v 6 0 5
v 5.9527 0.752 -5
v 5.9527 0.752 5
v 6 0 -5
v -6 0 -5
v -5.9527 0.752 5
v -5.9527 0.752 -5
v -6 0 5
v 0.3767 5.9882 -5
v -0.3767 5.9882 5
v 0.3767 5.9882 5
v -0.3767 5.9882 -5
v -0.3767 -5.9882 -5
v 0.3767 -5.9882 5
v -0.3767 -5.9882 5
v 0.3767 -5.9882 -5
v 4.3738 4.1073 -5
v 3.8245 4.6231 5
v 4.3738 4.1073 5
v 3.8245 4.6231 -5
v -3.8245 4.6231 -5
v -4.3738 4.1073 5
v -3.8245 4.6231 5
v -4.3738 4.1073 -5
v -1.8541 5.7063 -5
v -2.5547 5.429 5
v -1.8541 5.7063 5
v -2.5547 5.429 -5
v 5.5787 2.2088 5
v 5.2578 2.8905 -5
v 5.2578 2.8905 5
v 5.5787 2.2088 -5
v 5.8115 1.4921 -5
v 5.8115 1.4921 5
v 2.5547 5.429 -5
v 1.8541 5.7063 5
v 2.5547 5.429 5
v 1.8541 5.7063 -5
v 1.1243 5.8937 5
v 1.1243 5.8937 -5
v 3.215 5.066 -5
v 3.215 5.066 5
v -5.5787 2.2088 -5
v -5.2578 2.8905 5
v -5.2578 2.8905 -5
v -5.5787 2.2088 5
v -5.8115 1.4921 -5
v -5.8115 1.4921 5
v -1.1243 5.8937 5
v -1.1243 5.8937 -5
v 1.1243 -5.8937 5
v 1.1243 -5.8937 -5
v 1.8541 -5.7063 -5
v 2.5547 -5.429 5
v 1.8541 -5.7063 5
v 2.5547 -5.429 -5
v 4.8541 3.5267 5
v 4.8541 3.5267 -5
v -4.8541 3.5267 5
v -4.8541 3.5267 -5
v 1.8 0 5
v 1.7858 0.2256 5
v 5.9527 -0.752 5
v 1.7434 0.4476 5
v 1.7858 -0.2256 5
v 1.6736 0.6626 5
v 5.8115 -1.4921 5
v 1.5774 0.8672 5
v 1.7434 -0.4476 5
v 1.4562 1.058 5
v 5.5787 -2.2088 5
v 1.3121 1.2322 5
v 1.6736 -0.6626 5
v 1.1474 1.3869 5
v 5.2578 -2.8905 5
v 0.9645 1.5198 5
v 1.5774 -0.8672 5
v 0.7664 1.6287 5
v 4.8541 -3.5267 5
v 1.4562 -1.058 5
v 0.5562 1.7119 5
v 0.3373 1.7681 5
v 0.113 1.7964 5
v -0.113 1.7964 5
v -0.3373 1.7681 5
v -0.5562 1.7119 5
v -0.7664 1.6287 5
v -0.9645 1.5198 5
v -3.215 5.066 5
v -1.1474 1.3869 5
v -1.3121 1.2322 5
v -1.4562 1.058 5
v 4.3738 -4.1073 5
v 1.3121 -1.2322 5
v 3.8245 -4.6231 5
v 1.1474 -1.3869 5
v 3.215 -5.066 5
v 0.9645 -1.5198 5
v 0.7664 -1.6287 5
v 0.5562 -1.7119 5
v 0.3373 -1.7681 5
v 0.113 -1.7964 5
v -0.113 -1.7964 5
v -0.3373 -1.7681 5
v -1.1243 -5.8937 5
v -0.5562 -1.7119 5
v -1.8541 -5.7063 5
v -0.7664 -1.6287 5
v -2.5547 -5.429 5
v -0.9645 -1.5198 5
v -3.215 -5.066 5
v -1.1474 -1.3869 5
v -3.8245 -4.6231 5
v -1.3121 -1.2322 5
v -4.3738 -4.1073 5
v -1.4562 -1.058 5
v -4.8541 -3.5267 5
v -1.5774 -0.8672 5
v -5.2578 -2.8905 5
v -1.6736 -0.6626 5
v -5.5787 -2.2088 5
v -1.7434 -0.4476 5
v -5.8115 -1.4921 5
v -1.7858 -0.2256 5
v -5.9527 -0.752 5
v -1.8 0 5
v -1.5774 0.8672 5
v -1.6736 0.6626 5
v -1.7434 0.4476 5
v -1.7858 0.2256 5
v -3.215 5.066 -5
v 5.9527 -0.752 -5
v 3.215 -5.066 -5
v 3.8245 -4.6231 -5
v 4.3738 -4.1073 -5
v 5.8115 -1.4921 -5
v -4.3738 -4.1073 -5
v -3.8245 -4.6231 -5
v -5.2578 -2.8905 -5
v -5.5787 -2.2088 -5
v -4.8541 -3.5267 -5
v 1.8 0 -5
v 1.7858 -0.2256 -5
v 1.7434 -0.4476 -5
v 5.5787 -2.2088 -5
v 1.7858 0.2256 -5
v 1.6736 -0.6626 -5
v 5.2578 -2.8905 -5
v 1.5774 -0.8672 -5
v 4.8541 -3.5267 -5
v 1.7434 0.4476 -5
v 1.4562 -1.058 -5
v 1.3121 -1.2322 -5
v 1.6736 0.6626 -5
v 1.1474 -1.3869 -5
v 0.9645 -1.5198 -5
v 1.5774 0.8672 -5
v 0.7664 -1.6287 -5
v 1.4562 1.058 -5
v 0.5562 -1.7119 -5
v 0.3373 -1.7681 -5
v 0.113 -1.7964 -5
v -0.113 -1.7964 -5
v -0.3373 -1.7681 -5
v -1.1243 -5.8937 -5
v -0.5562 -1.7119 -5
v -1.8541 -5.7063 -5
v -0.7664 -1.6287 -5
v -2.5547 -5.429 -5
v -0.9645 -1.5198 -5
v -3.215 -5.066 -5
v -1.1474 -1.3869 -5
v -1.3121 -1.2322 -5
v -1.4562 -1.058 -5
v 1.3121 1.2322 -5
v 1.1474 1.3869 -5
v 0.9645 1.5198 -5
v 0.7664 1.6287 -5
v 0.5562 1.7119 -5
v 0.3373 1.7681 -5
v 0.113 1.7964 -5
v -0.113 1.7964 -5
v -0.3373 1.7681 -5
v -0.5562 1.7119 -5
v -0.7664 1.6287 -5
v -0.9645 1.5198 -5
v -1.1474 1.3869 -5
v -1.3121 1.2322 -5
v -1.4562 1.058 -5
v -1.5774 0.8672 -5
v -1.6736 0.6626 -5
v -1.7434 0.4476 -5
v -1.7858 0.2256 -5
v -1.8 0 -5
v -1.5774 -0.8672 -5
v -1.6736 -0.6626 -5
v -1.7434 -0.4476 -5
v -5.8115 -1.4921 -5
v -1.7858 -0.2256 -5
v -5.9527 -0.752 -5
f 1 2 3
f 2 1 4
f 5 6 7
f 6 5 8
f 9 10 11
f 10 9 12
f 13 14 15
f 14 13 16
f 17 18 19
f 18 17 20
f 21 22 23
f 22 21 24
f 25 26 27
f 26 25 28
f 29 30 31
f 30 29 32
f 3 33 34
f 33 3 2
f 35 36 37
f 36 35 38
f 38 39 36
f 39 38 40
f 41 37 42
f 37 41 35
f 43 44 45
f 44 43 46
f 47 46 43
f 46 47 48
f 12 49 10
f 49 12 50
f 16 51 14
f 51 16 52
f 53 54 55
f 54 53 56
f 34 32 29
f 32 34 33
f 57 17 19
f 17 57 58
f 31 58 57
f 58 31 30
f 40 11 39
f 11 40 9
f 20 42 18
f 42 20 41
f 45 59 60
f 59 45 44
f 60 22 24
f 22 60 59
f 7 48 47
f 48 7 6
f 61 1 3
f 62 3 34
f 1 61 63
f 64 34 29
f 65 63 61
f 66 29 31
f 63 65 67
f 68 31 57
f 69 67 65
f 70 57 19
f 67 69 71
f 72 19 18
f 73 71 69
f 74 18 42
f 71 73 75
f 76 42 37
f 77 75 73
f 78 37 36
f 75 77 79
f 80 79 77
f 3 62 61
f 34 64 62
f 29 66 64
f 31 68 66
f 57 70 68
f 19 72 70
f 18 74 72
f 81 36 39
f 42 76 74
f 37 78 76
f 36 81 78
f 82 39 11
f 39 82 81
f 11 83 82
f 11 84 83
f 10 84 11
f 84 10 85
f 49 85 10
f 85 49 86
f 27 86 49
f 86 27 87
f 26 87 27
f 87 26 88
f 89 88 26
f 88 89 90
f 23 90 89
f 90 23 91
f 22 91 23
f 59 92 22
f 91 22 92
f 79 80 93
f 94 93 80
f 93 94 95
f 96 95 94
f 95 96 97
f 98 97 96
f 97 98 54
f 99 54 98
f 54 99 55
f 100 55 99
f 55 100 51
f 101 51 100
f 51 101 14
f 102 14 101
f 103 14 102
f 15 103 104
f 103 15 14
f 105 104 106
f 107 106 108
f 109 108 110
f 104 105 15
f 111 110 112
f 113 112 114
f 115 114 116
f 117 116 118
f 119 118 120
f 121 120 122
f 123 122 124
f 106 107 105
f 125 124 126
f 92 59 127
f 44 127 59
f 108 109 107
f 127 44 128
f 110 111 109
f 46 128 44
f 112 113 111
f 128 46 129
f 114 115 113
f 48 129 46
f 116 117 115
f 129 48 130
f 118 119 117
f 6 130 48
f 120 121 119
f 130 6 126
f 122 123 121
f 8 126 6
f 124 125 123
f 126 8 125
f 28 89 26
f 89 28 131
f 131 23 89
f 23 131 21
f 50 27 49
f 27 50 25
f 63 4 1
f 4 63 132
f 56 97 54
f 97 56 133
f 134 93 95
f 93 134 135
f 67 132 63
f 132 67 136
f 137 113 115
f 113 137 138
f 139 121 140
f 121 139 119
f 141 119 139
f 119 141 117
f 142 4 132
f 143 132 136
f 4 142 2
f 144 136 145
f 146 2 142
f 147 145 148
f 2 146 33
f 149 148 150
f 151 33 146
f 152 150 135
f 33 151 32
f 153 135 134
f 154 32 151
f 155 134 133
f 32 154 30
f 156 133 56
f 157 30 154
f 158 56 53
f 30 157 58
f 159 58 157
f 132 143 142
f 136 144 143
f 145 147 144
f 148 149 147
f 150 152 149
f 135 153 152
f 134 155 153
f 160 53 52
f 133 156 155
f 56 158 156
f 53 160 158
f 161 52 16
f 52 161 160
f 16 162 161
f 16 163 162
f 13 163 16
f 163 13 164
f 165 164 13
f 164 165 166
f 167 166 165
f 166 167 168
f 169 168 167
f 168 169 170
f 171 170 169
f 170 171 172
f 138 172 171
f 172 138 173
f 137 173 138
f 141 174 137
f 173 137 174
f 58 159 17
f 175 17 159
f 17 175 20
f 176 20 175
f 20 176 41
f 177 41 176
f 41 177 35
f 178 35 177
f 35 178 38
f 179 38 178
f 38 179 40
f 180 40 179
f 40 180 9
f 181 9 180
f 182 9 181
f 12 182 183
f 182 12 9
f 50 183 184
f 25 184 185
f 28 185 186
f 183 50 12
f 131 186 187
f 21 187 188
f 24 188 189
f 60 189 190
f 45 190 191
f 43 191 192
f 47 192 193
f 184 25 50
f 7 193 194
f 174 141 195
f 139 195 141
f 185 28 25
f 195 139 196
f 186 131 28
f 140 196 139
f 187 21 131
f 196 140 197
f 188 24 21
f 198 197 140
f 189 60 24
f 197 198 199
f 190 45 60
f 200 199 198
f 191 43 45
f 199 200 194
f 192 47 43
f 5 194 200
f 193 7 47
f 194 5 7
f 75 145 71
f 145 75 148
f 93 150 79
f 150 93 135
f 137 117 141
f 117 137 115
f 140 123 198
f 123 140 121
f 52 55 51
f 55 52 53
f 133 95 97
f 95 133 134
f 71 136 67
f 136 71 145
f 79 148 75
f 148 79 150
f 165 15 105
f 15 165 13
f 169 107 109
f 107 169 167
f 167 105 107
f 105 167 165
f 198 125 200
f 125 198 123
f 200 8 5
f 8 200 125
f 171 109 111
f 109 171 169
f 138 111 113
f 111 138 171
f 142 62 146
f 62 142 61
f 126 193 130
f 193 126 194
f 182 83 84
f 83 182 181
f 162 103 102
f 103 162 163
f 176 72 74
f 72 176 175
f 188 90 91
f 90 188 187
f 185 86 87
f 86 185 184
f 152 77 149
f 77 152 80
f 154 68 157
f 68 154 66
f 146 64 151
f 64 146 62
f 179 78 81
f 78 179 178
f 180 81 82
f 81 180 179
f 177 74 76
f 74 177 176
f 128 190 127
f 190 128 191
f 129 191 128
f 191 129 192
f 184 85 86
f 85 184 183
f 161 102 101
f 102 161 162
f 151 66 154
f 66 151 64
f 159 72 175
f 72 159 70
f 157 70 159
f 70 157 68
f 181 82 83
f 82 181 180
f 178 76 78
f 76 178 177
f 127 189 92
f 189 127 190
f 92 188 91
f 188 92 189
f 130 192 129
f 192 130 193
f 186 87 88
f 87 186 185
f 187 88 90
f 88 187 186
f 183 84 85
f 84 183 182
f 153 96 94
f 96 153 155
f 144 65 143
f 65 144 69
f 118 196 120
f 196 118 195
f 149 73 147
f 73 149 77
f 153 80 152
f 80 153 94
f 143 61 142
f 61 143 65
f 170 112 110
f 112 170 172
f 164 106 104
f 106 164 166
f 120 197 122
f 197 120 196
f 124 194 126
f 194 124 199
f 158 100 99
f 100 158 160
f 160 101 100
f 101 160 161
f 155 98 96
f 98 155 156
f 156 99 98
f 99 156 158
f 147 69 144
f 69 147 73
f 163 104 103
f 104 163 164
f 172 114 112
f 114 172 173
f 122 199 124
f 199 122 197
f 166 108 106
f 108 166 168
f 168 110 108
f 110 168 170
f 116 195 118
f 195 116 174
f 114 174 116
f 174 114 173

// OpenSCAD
$fn = 50;


difference() {
	union() {
		translate(v = [0, 0, -5.0000000000]) {
			cylinder(h = 10, r = 6.0000000000);
		}
	}
	union() {
		translate(v = [0, 0, -100.0000000000]) {
			cylinder(h = 200, r = 1.8000000000);
		}
	}
}
